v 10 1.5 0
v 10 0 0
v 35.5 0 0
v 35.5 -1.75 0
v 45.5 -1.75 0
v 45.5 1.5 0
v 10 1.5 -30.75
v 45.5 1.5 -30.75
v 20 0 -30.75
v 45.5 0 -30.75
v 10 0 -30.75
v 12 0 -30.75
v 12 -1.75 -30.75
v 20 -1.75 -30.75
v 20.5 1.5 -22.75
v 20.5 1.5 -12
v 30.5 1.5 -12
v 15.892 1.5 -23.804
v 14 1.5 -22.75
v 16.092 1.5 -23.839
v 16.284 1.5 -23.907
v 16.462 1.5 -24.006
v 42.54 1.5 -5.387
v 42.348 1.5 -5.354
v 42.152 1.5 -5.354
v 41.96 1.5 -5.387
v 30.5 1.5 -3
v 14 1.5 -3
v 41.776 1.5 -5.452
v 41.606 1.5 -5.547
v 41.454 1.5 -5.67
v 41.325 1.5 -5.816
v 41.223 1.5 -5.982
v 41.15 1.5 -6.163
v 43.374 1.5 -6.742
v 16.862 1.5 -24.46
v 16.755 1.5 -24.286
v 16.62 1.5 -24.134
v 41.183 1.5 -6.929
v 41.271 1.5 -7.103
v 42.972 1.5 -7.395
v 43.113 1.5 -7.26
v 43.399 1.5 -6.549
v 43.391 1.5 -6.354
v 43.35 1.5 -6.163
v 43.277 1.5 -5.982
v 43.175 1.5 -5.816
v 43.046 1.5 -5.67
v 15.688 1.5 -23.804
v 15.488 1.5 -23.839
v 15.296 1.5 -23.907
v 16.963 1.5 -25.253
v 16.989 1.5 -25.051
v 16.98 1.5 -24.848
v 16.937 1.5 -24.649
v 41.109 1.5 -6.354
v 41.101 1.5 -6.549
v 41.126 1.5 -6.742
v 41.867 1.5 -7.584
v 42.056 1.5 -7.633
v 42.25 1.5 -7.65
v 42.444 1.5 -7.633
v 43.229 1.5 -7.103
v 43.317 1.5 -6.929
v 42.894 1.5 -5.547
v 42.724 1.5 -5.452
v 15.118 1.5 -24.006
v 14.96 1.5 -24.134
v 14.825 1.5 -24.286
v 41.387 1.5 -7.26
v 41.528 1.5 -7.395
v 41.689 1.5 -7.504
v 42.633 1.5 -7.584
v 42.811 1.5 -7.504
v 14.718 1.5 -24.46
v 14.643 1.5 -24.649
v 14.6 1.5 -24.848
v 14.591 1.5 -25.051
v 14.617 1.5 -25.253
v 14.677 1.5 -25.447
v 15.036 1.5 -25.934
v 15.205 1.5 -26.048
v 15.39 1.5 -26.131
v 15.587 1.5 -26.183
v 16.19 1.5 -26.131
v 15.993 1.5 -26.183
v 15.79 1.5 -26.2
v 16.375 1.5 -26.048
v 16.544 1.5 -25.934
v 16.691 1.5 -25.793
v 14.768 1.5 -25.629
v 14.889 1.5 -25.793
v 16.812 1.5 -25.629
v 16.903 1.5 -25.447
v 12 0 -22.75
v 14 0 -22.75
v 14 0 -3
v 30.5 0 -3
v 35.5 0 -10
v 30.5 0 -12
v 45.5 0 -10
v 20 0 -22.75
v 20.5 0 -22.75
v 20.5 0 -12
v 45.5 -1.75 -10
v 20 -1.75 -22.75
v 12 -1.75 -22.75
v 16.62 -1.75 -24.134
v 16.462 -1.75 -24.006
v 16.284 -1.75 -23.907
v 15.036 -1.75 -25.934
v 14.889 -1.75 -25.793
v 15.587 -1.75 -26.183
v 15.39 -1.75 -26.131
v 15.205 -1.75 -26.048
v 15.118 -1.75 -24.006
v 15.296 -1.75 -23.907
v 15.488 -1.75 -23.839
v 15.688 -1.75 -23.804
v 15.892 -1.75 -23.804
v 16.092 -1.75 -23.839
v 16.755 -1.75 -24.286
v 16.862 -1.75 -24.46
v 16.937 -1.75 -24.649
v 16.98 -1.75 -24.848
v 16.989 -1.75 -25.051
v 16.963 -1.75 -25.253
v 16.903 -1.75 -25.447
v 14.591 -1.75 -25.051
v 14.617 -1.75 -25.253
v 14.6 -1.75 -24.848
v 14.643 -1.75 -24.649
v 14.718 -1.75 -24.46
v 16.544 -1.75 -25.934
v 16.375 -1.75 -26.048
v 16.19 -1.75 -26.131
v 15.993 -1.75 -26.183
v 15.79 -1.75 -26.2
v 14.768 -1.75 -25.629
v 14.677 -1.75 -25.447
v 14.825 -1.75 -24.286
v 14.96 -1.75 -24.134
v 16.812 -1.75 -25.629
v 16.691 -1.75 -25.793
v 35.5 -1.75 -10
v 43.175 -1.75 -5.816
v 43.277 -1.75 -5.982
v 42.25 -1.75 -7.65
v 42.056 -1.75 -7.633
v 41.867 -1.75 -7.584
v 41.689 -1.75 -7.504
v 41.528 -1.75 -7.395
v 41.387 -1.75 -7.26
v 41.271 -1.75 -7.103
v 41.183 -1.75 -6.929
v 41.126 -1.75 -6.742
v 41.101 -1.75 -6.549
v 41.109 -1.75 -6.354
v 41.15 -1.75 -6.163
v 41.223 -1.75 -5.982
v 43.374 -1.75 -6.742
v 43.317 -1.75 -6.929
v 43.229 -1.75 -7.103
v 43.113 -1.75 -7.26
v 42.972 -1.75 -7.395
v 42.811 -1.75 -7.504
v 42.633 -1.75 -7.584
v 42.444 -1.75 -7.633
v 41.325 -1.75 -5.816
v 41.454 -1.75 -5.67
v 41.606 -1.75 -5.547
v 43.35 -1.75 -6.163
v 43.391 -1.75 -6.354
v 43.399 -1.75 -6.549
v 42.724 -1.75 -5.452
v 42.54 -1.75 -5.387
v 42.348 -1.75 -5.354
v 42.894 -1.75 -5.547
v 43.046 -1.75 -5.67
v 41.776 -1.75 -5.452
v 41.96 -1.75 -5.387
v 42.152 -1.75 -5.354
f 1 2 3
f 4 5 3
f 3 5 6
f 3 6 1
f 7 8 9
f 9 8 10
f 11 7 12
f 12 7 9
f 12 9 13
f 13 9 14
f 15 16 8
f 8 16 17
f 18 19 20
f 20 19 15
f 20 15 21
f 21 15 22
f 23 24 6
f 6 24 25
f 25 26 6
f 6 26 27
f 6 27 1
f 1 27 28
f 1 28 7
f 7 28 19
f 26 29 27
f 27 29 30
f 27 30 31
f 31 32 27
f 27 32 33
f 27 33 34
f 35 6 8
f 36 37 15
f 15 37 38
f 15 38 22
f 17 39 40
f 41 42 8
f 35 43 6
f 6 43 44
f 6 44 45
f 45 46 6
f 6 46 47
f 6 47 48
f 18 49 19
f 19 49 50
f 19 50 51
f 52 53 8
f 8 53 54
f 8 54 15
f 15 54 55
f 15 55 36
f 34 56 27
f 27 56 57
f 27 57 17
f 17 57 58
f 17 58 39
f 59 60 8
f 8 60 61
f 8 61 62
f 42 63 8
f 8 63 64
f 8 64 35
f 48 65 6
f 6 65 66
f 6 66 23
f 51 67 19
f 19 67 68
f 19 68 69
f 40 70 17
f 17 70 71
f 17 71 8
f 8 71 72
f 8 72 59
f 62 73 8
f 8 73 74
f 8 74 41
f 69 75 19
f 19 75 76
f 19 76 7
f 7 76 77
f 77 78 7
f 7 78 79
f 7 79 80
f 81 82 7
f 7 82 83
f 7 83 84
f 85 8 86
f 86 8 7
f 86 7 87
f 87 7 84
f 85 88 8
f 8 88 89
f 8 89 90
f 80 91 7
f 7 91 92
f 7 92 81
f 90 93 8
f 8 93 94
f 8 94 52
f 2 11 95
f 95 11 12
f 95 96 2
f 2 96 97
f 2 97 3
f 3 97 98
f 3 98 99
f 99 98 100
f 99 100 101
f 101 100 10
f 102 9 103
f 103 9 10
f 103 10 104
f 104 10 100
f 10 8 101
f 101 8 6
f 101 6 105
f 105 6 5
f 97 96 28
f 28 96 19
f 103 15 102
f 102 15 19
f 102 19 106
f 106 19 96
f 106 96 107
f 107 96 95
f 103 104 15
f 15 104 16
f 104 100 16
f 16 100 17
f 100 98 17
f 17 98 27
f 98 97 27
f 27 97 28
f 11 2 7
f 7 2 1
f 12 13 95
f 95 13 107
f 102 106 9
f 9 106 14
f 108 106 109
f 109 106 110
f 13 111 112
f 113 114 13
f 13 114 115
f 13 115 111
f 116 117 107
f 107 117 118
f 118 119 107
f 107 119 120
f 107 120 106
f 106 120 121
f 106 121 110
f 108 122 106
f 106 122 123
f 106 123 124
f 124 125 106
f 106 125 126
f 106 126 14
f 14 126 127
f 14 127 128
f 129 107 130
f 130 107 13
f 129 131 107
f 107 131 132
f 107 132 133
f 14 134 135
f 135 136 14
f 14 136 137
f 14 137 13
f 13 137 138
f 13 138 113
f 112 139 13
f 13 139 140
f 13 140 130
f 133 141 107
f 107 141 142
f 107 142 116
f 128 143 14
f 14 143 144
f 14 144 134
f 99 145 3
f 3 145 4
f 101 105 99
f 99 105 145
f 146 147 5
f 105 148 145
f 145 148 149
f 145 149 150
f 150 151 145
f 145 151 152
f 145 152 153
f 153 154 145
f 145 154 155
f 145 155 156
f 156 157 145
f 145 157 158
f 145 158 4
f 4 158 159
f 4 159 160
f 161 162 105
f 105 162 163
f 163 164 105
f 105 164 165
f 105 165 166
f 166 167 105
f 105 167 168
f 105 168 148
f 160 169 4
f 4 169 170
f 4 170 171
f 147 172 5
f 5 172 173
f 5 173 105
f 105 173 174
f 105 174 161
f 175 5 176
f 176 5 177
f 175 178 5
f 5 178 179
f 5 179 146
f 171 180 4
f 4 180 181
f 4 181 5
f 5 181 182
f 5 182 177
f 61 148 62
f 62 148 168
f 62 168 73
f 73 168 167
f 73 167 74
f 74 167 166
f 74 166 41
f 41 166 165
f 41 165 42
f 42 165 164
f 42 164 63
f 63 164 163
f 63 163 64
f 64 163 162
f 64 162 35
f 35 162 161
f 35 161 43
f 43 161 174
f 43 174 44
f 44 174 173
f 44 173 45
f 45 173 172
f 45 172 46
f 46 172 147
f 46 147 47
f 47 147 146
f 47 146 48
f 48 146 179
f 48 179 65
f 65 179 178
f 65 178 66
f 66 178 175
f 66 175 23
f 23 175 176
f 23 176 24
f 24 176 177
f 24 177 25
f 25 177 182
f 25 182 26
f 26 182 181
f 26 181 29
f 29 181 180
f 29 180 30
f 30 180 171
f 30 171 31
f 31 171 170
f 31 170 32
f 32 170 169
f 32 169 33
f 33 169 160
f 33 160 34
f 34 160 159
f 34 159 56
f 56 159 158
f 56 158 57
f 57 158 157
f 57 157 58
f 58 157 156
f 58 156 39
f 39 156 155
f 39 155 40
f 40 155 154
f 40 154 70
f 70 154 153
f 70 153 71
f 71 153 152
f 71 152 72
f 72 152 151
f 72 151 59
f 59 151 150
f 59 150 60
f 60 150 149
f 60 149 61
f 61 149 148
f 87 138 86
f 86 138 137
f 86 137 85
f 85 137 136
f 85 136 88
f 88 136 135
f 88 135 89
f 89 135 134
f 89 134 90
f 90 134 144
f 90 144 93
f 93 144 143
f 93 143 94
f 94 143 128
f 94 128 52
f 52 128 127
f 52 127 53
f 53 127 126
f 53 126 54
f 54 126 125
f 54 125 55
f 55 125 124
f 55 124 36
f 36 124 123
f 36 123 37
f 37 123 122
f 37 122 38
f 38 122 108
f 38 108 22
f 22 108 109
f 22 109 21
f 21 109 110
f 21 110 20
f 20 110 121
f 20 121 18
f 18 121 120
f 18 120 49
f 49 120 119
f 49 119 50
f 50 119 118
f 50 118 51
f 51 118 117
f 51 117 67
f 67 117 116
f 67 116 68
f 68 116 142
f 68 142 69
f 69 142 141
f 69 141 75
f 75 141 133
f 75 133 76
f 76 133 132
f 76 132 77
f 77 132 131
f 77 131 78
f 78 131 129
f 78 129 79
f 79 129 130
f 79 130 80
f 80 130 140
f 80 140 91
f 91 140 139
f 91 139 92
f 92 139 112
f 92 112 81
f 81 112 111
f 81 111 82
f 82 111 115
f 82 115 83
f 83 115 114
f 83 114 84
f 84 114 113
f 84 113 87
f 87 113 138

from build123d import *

# Parameters (mm, degrees)
SKETCH1_W           = 45.5
SKETCH1_H           = 30.75
BOSS_EXTRUDE1_DEPTH = 1.5
CUT_EXTRUDE1_DEPTH  = 55.936895617
SKETCH3_W           = 10
SKETCH3_H           = 10
SKETCH3_W_2         = 8
SKETCH3_H_2         = 8
BOSS_EXTRUDE2_DEPTH = 3.25
SKETCH4_R           = 1.15
SKETCH4_R_2         = 1.2
CUT_EXTRUDE2_DEPTH  = 56.01249858


with BuildPart() as part:
    # Sketch1 → Boss-Extrude1 (new body)
    with BuildSketch(Plane(origin=(0, 0, 0), x_dir=(1, 0, 0), z_dir=(0, 1, 0))):
        with Locations((22.75, 15.375)):
            Rectangle(SKETCH1_W, SKETCH1_H)
    extrude(amount=BOSS_EXTRUDE1_DEPTH)

    # Sketch2 → Cut-Extrude1 (cut, through all)
    with BuildSketch(Plane(origin=(0, 1.5, 0), x_dir=(1, 0, 0), z_dir=(0, 1, 0))):
        Polygon((0, 0), (10, 0), (10, 22.75), (10, 30.75), (0, 30.75), align=None)
        Polygon((14, 3), (30.5, 3), (30.5, 12), (20.5, 12), (20.5, 22.75), (14, 22.75), align=None)
    extrude(amount=-CUT_EXTRUDE1_DEPTH, mode=Mode.SUBTRACT)

    # Sketch3 → Boss-Extrude2 (add)
    with BuildSketch(Plane(origin=(0, 1.5, 0), x_dir=(1, 0, 0), z_dir=(0, 1, 0))):
        with Locations((40.5, 5)):
            Rectangle(SKETCH3_W, SKETCH3_H)
        with Locations((16, 26.75)):
            Rectangle(SKETCH3_W_2, SKETCH3_H_2)
    extrude(amount=-BOSS_EXTRUDE2_DEPTH)

    # Sketch4 → Cut-Extrude2 (cut, through all)
    with BuildSketch(Plane(origin=(0, -1.75, 0), x_dir=(-1, 0, 0), z_dir=(0, -1, 0))):
        with Locations(Location((-42.25, 6.5, 0), (0, 0, 90))):
            Circle(SKETCH4_R)
        with Locations(Location((-15.79, 25, 0), (0, 0, 90))):
            Circle(SKETCH4_R_2)
    extrude(amount=-CUT_EXTRUDE2_DEPTH, mode=Mode.SUBTRACT)


solid = part.part
